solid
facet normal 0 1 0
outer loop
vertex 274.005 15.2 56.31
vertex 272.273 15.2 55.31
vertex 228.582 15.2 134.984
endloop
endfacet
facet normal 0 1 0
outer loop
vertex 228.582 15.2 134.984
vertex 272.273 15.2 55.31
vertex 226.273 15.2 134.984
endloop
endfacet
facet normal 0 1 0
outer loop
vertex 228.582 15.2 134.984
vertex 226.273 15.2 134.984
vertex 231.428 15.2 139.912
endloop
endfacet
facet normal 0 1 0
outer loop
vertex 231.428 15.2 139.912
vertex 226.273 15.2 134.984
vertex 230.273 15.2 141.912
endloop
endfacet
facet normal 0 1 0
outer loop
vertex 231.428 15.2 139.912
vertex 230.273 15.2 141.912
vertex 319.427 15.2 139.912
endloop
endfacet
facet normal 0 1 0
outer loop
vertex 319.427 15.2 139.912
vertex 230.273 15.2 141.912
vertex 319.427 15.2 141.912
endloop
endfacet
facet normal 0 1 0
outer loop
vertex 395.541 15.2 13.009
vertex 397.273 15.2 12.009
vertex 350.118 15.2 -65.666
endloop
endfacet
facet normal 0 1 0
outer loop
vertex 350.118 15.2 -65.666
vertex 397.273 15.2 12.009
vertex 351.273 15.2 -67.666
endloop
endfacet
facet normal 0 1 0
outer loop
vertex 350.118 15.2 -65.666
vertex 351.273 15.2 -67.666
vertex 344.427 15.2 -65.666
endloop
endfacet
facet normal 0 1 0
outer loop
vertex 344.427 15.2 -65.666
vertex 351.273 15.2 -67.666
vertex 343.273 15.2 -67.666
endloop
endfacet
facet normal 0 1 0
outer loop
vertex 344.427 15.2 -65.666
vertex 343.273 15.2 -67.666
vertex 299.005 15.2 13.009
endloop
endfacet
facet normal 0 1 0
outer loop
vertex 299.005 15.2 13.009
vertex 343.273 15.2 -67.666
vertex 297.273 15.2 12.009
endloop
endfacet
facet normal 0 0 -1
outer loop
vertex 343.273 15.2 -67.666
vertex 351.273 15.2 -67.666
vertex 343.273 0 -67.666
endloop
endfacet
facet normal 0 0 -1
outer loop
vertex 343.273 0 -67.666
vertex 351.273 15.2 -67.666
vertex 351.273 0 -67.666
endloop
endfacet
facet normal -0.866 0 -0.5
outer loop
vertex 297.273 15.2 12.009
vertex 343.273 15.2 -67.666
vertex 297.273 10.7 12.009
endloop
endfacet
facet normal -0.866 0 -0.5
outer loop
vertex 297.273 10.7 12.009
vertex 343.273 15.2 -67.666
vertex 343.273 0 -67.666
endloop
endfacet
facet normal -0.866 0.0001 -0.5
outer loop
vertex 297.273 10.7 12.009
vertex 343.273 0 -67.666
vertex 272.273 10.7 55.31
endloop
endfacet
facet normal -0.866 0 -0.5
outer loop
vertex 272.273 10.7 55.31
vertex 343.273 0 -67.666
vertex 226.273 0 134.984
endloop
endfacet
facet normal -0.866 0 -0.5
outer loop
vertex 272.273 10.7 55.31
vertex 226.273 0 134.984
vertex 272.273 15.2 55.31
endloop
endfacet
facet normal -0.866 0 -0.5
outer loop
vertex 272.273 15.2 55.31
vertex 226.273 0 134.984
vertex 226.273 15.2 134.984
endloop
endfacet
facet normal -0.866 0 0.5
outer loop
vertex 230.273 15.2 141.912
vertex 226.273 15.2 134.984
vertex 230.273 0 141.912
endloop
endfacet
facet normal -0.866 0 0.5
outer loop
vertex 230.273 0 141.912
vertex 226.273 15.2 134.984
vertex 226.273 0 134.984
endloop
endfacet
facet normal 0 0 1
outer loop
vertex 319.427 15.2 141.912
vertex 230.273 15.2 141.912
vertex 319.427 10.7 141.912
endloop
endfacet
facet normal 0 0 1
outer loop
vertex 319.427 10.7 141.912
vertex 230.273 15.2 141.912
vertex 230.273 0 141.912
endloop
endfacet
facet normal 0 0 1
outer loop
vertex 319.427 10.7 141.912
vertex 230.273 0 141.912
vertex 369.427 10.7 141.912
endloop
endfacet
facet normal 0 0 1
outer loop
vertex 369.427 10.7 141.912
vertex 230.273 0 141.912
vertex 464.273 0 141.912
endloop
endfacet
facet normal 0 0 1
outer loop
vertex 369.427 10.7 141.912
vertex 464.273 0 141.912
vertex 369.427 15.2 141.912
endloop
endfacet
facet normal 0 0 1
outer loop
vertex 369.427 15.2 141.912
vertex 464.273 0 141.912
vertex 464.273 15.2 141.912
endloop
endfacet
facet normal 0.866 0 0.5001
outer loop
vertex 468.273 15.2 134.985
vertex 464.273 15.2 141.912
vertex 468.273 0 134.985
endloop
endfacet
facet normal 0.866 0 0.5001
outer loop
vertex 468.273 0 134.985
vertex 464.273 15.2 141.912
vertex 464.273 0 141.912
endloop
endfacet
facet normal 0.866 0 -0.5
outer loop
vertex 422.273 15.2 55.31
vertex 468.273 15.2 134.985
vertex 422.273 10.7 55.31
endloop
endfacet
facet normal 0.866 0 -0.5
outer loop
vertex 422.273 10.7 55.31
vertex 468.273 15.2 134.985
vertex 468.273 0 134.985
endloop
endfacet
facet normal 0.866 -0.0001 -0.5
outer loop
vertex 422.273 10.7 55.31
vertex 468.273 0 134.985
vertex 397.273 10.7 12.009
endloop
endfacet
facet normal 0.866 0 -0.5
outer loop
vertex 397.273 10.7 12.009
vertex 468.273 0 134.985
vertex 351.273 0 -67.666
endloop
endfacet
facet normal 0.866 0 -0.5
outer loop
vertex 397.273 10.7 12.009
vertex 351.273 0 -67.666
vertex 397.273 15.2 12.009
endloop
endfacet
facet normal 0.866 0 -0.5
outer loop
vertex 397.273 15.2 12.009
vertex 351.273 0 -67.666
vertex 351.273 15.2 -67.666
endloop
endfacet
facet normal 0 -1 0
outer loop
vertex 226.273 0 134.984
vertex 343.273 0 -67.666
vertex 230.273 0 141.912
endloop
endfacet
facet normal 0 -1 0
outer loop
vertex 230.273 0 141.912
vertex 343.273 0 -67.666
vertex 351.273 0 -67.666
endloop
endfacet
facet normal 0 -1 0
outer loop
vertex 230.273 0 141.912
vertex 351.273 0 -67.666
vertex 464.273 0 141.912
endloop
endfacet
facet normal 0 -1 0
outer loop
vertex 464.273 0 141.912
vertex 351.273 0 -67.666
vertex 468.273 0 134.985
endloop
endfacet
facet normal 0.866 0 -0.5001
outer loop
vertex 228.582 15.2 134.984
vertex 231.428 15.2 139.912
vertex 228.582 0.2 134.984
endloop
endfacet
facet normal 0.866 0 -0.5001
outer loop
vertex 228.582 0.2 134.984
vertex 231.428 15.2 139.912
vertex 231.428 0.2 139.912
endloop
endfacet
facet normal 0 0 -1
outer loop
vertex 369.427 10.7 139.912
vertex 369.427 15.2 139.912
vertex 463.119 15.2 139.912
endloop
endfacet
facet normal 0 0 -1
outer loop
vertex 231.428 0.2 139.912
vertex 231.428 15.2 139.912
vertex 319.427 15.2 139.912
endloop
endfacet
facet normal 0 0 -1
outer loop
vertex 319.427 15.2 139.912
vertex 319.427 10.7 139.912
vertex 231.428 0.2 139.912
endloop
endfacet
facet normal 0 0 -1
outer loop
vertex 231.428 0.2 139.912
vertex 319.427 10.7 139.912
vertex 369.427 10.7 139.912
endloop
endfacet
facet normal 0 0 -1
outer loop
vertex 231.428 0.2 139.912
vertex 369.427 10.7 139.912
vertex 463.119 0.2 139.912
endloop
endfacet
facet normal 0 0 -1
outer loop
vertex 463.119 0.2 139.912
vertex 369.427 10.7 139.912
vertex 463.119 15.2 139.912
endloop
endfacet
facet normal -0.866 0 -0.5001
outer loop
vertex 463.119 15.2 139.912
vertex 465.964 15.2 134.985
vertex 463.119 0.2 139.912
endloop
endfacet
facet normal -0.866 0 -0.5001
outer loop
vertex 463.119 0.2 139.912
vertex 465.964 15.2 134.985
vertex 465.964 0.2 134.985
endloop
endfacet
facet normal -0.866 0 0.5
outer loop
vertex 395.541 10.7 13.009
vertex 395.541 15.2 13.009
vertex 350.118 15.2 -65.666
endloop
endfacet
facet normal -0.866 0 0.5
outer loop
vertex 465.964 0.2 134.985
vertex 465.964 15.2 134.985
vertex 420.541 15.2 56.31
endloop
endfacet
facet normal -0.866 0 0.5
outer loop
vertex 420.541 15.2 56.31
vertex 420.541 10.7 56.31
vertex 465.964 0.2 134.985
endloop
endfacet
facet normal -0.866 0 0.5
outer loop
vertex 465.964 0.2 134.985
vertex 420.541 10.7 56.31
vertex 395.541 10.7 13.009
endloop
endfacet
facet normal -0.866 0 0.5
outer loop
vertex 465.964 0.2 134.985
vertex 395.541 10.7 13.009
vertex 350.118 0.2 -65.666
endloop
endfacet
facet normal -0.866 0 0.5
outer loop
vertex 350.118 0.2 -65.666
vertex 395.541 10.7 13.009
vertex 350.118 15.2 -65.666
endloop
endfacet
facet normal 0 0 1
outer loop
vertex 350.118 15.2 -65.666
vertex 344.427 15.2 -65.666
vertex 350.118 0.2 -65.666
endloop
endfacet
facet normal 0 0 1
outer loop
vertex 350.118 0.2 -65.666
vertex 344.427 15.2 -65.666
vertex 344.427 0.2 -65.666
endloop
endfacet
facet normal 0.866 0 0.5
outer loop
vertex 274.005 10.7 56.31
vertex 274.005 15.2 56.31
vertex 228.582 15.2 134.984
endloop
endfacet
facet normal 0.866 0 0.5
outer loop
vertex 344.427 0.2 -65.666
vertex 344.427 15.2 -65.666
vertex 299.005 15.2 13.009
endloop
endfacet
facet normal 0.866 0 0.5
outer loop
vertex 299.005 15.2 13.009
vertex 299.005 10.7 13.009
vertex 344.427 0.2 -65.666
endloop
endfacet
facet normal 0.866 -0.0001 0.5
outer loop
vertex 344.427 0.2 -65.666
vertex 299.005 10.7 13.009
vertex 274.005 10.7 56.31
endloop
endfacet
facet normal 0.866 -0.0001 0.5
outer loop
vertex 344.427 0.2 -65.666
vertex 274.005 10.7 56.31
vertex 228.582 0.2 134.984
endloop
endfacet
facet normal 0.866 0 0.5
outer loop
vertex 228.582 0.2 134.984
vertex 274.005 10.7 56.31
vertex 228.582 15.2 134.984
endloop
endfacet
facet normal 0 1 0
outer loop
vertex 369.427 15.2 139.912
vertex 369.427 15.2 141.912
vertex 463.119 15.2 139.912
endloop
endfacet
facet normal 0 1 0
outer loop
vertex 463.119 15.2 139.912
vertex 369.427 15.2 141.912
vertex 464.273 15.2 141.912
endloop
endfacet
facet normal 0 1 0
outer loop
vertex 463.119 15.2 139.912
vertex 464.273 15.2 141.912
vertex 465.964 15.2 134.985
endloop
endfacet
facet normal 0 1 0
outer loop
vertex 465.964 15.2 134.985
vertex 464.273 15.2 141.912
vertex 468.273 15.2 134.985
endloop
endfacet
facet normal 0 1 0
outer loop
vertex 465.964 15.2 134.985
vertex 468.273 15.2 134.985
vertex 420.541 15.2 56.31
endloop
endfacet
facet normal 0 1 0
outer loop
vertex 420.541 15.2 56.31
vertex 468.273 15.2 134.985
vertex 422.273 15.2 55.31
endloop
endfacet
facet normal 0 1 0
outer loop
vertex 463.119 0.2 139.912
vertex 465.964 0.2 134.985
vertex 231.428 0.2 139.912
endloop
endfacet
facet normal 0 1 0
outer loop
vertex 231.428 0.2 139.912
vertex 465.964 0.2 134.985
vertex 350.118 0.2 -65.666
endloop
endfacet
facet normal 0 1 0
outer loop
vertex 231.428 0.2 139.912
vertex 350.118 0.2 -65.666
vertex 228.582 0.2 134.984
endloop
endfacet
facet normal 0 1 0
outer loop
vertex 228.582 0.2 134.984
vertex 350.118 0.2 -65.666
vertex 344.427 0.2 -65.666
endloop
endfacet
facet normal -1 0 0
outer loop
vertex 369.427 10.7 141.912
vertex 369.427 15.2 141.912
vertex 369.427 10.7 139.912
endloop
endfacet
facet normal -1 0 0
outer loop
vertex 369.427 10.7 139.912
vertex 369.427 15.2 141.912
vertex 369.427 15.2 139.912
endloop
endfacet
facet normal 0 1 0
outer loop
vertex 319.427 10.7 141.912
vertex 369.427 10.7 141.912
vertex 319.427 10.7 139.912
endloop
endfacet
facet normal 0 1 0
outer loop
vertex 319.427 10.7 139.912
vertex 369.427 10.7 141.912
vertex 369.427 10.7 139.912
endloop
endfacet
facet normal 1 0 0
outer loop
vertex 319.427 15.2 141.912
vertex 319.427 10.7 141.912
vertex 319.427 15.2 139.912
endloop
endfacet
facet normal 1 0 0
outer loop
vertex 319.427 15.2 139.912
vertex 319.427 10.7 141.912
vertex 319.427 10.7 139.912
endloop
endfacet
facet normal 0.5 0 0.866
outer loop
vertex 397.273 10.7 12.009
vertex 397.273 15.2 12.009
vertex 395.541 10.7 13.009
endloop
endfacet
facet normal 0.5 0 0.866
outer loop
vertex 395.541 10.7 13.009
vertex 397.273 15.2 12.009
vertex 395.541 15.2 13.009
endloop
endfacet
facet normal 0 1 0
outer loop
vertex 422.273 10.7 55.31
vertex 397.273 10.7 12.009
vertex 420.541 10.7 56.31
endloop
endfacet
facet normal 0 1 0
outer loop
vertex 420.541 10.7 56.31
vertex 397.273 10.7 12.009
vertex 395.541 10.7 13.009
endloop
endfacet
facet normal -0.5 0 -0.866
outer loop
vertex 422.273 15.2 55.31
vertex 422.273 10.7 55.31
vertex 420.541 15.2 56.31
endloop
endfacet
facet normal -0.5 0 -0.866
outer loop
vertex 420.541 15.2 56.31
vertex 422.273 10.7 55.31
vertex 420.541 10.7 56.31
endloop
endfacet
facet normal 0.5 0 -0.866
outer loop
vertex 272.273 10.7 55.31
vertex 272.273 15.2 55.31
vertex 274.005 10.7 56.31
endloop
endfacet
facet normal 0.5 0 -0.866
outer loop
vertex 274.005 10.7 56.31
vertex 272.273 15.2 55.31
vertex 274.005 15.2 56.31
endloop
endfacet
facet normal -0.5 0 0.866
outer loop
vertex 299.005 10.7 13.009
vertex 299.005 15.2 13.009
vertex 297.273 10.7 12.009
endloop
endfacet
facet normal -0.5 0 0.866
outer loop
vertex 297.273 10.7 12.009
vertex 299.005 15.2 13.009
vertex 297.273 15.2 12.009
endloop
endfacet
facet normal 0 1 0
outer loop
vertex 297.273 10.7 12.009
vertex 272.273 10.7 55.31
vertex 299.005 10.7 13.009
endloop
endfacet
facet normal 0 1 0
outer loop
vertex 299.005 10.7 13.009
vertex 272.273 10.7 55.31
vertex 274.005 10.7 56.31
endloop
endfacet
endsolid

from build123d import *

# Parameters (mm, degrees)
BOSS_EXTRUDE6_DEPTH = 0.2
BOSS_EXTRUDE8_DEPTH = 15.2
SKETCH2_W           = 50
SKETCH2_H           = 9
CUT_EXTRUDE1_DEPTH  = 2
SKETCH3_W           = 50
SKETCH3_H           = 9
CUT_EXTRUDE2_DEPTH  = 2
SKETCH4_W           = 50
SKETCH4_H           = 9
CUT_EXTRUDE3_DEPTH  = 2


with BuildPart() as part:
    # Sketch1 → Boss-Extrude6 (new body)
    with BuildSketch(Plane(origin=(0, 0, 0), x_dir=(1, 0, 0), z_dir=(0, 1, 0))):
        Polygon((351.272917769, 67.665499075), (468.273000096, -134.984588004), (464.273241085, -141.912373829), (230.273290915, -141.912373829), (226.272682949, -134.984246141), (343.272757546, 67.665499075), align=None)
    extrude(amount=BOSS_EXTRUDE6_DEPTH)

    # Sketch1<7> → Boss-Extrude8 (add)
    with BuildSketch(Plane(origin=(0, 0, 0), x_dir=(1, 0, 0), z_dir=(0, 1, 0))):
        Polygon((351.272917769, 67.665499075), (468.273000096, -134.984588004), (464.273241085, -141.912373829), (230.273290915, -141.912373829), (226.272682949, -134.984246141), (343.272757546, 67.665499075), align=None)
        Polygon((231.427991453, -139.912373829), (463.118576698, -139.912436444), (465.963671321, -134.984588004), (350.118252434, 65.665563332), (344.427420986, 65.665563332), (228.58200795, -134.984248572), align=None, mode=Mode.SUBTRACT)
    extrude(amount=BOSS_EXTRUDE8_DEPTH)

    # Sketch2 → Cut-Extrude1 (cut)
    with BuildSketch(Plane.XY.offset(141.912373829)):
        with Locations((344.427420986, 15.2)):
            Rectangle(SKETCH2_W, SKETCH2_H)
    extrude(amount=-CUT_EXTRUDE1_DEPTH, mode=Mode.SUBTRACT)

    # Sketch3 → Cut-Extrude2 (cut)
    with BuildSketch(Plane(origin=(292.754708906, 0, -169.022009994), x_dir=(-0.5000000000000001, 0, -0.8660254037844386), z_dir=(0.8660254037844386, 0, -0.5000000000000001))):
        with Locations((-234.036500052, 15.2)):
            Rectangle(SKETCH3_W, SKETCH3_H)
    extrude(amount=-CUT_EXTRUDE2_DEPTH, mode=Mode.SUBTRACT)

    # Sketch4 → Cut-Extrude3 (cut)
    with BuildSketch(Plane(origin=(228.154315179, 0, 131.7251688), x_dir=(-0.5000006078406093, 0, 0.866025052847215), z_dir=(-0.866025052847215, 0, -0.5000006078406093))):
        with Locations((-113.236672478, 15.2)):
            Rectangle(SKETCH4_W, SKETCH4_H)
    extrude(amount=-CUT_EXTRUDE3_DEPTH, mode=Mode.SUBTRACT)


solid = part.part
